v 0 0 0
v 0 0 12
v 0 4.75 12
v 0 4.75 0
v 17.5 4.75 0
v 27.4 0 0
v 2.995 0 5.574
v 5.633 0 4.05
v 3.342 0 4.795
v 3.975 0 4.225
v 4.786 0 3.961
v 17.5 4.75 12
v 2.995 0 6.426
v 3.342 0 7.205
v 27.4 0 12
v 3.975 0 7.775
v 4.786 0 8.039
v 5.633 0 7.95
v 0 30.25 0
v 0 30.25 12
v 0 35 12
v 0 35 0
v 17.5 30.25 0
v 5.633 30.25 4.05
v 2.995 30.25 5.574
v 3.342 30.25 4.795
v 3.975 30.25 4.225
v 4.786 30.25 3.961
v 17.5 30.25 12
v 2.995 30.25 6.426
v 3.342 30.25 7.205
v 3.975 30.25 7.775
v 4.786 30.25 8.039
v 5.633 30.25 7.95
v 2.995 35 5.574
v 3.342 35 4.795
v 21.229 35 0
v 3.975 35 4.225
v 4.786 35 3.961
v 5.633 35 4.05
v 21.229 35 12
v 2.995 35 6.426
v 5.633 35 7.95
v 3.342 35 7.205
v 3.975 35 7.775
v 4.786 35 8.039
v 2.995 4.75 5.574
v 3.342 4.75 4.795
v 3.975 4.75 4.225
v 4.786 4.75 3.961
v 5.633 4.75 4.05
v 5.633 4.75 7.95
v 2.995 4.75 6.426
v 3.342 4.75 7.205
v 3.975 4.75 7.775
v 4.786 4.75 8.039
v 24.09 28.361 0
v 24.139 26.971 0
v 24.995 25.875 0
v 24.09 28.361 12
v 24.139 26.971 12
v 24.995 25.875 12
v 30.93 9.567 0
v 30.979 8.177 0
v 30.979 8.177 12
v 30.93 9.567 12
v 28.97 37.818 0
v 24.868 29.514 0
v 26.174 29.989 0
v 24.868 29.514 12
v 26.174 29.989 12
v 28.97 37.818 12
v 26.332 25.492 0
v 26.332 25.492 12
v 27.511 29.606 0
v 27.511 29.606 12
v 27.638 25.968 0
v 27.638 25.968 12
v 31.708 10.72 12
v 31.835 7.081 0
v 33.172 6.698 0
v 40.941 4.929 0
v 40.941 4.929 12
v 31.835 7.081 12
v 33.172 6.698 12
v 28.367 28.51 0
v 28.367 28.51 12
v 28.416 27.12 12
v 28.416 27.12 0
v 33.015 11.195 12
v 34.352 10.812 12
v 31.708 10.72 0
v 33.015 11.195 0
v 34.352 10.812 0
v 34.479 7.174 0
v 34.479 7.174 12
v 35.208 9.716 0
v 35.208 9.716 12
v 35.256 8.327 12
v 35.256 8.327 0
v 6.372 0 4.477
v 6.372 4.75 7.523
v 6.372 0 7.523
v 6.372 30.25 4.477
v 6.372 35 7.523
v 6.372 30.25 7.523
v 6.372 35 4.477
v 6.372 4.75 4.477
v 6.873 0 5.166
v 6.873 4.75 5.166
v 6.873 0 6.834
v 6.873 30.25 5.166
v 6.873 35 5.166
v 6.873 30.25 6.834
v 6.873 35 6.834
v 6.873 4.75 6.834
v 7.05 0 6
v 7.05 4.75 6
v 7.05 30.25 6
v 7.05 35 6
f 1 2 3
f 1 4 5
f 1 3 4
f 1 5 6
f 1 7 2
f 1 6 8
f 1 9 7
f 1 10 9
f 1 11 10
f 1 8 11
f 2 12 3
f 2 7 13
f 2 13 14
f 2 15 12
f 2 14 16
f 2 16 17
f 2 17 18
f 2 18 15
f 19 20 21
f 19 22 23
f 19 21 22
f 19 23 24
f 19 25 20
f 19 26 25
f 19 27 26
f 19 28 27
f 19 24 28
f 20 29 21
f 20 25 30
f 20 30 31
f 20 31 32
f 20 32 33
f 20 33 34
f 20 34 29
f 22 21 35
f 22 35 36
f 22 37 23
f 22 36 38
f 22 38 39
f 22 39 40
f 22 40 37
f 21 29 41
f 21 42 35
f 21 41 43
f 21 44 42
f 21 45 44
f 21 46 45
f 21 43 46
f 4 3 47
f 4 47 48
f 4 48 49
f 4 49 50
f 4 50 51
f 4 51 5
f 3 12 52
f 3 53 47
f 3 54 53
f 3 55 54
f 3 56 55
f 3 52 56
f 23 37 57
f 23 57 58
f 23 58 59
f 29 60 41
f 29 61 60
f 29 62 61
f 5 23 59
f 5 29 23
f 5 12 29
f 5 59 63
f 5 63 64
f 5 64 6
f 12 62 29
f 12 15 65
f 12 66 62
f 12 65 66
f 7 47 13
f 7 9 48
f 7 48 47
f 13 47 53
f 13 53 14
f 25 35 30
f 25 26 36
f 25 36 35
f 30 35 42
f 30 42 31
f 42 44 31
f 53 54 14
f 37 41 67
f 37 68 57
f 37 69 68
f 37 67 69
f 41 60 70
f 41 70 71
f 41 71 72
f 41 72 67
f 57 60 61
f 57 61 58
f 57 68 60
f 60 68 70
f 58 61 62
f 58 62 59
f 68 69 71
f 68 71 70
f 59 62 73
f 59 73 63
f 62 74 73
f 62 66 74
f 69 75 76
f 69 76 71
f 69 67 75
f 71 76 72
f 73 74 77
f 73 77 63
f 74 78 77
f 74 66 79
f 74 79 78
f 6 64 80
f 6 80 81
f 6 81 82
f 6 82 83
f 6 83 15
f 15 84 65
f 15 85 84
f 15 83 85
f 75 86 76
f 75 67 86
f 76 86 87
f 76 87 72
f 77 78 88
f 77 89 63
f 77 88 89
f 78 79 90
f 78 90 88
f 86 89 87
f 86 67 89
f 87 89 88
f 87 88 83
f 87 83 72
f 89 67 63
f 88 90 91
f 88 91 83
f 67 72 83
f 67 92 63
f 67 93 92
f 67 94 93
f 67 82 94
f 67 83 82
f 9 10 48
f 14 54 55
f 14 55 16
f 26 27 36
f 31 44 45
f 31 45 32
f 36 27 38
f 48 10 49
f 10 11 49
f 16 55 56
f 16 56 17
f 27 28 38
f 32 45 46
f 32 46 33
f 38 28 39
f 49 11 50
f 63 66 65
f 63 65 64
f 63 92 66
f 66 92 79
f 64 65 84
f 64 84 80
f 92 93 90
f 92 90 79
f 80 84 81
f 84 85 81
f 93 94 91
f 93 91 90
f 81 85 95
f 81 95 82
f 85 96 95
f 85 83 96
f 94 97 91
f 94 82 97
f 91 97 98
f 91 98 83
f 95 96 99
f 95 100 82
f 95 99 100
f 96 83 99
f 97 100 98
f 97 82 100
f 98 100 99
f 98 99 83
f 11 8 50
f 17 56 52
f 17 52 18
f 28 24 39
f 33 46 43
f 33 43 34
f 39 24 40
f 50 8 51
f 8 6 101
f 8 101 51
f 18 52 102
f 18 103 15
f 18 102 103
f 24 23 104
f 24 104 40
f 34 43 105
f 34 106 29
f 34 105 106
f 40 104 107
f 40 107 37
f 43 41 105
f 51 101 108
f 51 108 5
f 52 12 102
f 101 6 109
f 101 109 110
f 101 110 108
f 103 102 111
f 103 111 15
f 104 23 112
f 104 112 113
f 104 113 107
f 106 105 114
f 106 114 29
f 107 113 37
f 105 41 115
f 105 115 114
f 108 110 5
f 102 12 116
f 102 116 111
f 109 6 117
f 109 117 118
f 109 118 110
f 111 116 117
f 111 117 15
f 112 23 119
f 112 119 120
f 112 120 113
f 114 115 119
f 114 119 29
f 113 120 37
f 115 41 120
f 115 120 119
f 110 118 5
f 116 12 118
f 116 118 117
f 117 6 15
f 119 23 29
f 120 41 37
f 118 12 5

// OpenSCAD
// file: ../Parameters.scad
//Main tube diameter - hole [mm]
main_tube_outer_diameter = 25.4;
main_tube_inner_diameter = 23.5;

//Tube for undercarriage - hole [mm]
tube_for_undercarriage_outer_diameter = 10.6;
tube_for_undercarriage_inner_diameter = 6;
global_clearance = 0.5;


//umístění podvozkových trubek

second_undercarriage_hole = main_tube_outer_diameter*2 + main_tube_outer_diameter/5 + main_tube_outer_diameter/2 + 170 + 160;

// Parameters of cube couplings
coupling_wall_thickness = main_tube_outer_diameter/5;  //width of coupling walls 
thickness_between_tubes = main_tube_outer_diameter/10;    // minimum distance between tubes in couplings

coupling_wall_thickness_undercarriage = tube_for_undercarriage_outer_diameter/3;
thickness_between_tubes_undercarriage = tube_for_undercarriage_outer_diameter/10;

//Screw diameter and nut for M4 [mm]
M4_screw_diameter=4.5;
Nut_height_M4 = 3.2;
Nut_diameter_M4 = 7.86;


//Screw diameter and nut for M3 [mm]
M3_screw_diameter = 3.2;
Nut_height_M3 = 1.7;	
Nut_diameter_M3 = 6.6; 


//The tube for help
Help_main_tube_outer = 25;
Help_main_tube_inner = 23; 
Help_tube_for_undercarriage_outer = 10;
Help_tube_for_undercarriage_inner = 5;


//main hull parameters

hull_drop_length = 580;
hull_wall_thickness = 0.8;
hull_y_size = 120;
hull_z_size = 150;
hull_x_size = 580;
hull_corner_radius = 4;
hull_airfoil_thickness= 35;  // thickness of drop generating airfoil in percent of lenght.
hull_scale_x = 1;
hull_scale_y = 1.5;
hull_scale_z = 1.5;

main_pilon_position = 170+68;
cover_pilon_position = 180;
height_of_vertical_tube = 275; //278mm je změřená délka trubky. 

ribbon_width = 5; // šířka vyztužovacích lemů. 

// šířka otvoru v přední části kapoty pro držák motoru.
width_of_engine_holder = 63;

//Top Cover Division - dělení horního krytu pro tisk
top_cover_division = [0, 50, 150, 280, 410, hull_x_size]; // upraveny seznam tak, aby deleni začinalo od nuly, což umožňí úplně automatické rozdělení.

//Bottom Cover Division - dělení dolního krytu pro tisk
bottom_cover_division = [0,100,250,365, 470, hull_x_size];
// zkrácená část pro payload pro testovací tisk
//bottom_cover_division = [0,200,250,365, 470, hull_x_size];

//Base Divison - dělení podložky
base_division = [0,140,280,410, hull_x_size];

//Cover pilon division - na výšku (v ose Z)
cover_pilon_division = [0,170,height_of_vertical_tube + main_tube_outer_diameter + coupling_wall_thickness];

//pozice šroubů
	//horní kryt
top_screw_position = [0, (top_cover_division[0] + top_cover_division[1])/4, (top_cover_division[2] - top_cover_division[1])/2 + top_cover_division[1], (top_cover_division[3] - top_cover_division[2])/2 + top_cover_division[2],(top_cover_division[4] - top_cover_division[3])/2 + top_cover_division[3],(top_cover_division[5] - top_cover_division[4])/2 + top_cover_division[4] - 20];
	//spodní kryt
bottom_screw_position = [(bottom_cover_division[0] + bottom_cover_division[1])/15 + 5, bottom_cover_division[1]/1.1 + bottom_cover_division[3], bottom_cover_division[3] + bottom_cover_division[1]/2, bottom_cover_division[4], bottom_cover_division[4] + bottom_cover_division[1]/2];




//šířka zámků
lock_width = 10;

//délka zámků
lock_length = 3;


//accumulator
//základní rozměry akumulátoru
width_of_accumulator = 129.4;//45+1;
depth_of_accumulator = 40.61;
height_of_accumulator = 43.65;
//Zapuštění akumulátoru
sink_of_accumulator = 5; //main_tube_outer_diameter/5 - Nut_height_M3*1.5;

//tloušťka hrany spojky
accumulator_holder_width = 18; 
accumulator_holder_thickness = 10; 

//posunutí akumálátoru na podložce
move_of_accumulator = 165;   // pozice akumulátoru (ovlivňuje těžiště)


////////////////
// Senzory
///////////////////

//opticalFlow
    width_optical_flow_senzor = 45.5;
    depth_optical_flow_senzor = 6;
    height_optical_flow_senzor = 35;
    sink_of_optical_flow_senzor = depth_optical_flow_senzor - 5; 
    M3_optical_flow_senzor_Z = 30.4;
    M3_optical_flow_senzor_X = 24;
    M3_optical_flow_senzor_Z_alone = 9.1;
    M3_optical_flow_senzor_X_alone = 16.7;
// file: lib/naca4.scad
// Naca4.scad - library for parametric airfoils of 4 digit NACA series
// Code: Rudolf Huttary, Berlin 
// June 2015
// commercial use prohibited


// general use: for more examples refer to sampler.scad
// naca = naca digits or 3el vector  (default = 12 or [0, 0, .12])
// L    = chord length [mm]      (default= 100)
// N    = # sample points        (default= 81)
// h    = height [mm]            (default= 1)
// open = close at the thin end? (default = true)
// two equivalent example calls
 airfoil(naca = 2408, L = 60, N=1001, h = 30, open = false); 
// airfoil(naca = [.2, .4, .32], L = 60, N=1001, h = 30, open = false); 

module help()
{
  echo(str("\n\nList of signatures in lib:\n=================\n", 
  "module airfoil(naca=2412, L = 100, N = 81, h = 1, open = false) - renders airfoil object\n", 
  "module airfoil(naca=[.2, .4, .12], L = 100, N = 81, h = 1, open = false) - renders airfoil object using percentage for camber,  camber distance and thicknes\n", 
  "function airfoil_data(naca=12, L = 100, N = 81, open = false)\n",
  "=================\n")); 
}

help(); 
// this is the object
module airfoil(naca=12, L = 100, N = 81, h = 1, open = false)
{
  linear_extrude(height = h)
  polygon(points = airfoil_data(naca, L, N, open)); 
}

module hollow_airfoil(lnaca=12, L = 100, N = 81, h = 1, open = false, wall_thickness = 1)
{
    if (open){
        linear_extrude(height = h)

        if (wall_thickness>0){
            difference(){
                polygon(points = airfoil_data(naca, L, N, false));
                offset(delta = - wall_thickness, chamfer = false) polygon(points = airfoil_data(naca, L, N, open = false));
            }
        }
        else{
            difference(){
                offset(delta = - wall_thickness, chamfer = false) polygon(points = airfoil_data(naca, L, N, open = false));
                polygon(points = airfoil_data(naca, L, N, false));
            }
        }
    }
    else{

        linear_extrude(height = abs(wall_thickness))
            polygon(points = airfoil_data(naca, L, N, false)); 

        linear_extrude(height = h)
            difference(){
                polygon(points = airfoil_data(naca, L, N, open));
                offset(delta = - wall_thickness) polygon(points = airfoil_data(naca, L, N, open = false));
            }

        translate([0,0, h - wall_thickness])
            linear_extrude(height = abs(wall_thickness))
                polygon(points = airfoil_data(naca, L, N, false)); 

    }
}


// this is the main function providing the airfoil data
function airfoil_data(naca=12, L = 100, N = 81, open = false) = 
  let(Na = len(naca)!=3?NACA(naca):naca)
  let(A = [.2969, -0.126, -.3516, .2843, open?-0.1015:-0.1036])
  [for (b=[-180:360/(N):179.99]) 
    let (x = (1-cos(b))/2)  
    let(yt = sign(b)*Na[2]/.2*(A*[sqrt(x), x, x*x, x*x*x, x*x*x*x])) 
    Na[0]==0?L*[x, yt]:L*camber(x, yt, Na[0], Na[1], sign(b))];  


function trailing_edge_angle(naca=12, open = false) = 
  let(Na = len(naca)!=3?NACA(naca):naca)
  let(A = [.2969, -0.126, -.3516, .2843, open?-0.1015:-0.1036])
  let (x =0.999)  // set x near to airfoil trailing edge
  let(yt = Na[2]/.2*(A*[sqrt(x), x, x*x, x*x*x, x*x*x*x])) // calculate distance from x-axis at previously set position
  atan2(yt,1-x);  // calculate angle of triangle between end of airfoil. The triange height corresponds to previously calculated distance from x-axis

function surface_angle(x = 0.5, naca=12, open = false) = 
  let(Na = len(naca)!=3?NACA(naca):naca)
  let(A = [0.2969, -0.126, -0.3516, 0.2843, open?-0.1015:-0.1036])
  let(dy = Na[2]/0.2*(A*[(1/2)*(1/sqrt(x)), 1, 2*x, 3*x*x, 4*x*x*x])) // calculate derivative of airfoil function at the x point
  atan(dy);  // calculate  the angle from function derivative

function surface_distance(x = 0.5, naca=12, open = false) = 
  let(Na = len(naca)!=3?NACA(naca):naca)
  let(A = [0.2969, -0.126, -0.3516, 0.2843, open?-0.1015:-0.1036])
  Na[2]/.2*(A*[sqrt(x), x, x*x, x*x*x, x*x*x*x]); // calculate distance from x-axis at previously set position

// helper functions
function NACA(naca) = 
  let (M = floor(naca/1000))
  let (P = floor((naca-M*1000)/100)) 
  [M/100, P/10, floor(naca-M*1000-P*100)/100];  

function camber(x, y, M, P, upper) = 
  let(yc = (x<P)?M/P/P*(2*P*x-x*x): M/(1-P)/(1-P)*(1 - 2*P + 2*P*x -x*x))
  let(dy = (x<P)?2*M/P/P*(P-x):2*M/(1-P)/(1-P)*(P-x))
  let(th = atan(dy))
  [upper ? x - y*sin(th):x + y*sin(th), upper ? yc + y*cos(th):yc - y*cos(th)];
// main file
module 666_1232(){

thickness = 12; 
	difference(){
        union(){
            cube([27.4,35,thickness]);
            translate([27.4,0,0])
                rotate([0,0,20])
                    cube([14.41,35,thickness]);
        }
        // díra pro domek
        translate([0,5-0.25,-1])
            cube([17.5,25.5,thickness + 2]);


        // díry pro čep
		translate([5,38,thickness/2])
            rotate([90,0,0])
                cylinder (h = 40, r = 4.1/2, $fn = 15);

        //díry pro přišroubování závěsu rotorového listu. 
        translate([27.4,0,0])
        rotate([0,0,20])
            union(){
                translate([14.41-6,6.46,-1]) 
                    cylinder (h = thickness + 2, r = M4_screw_diameter/2, $fn = 10);

                translate([14.41-6, 6.46+20,-1]) 
                    cylinder (h = thickness + 2, r = M4_screw_diameter/2, $fn = 10);
            }

	}
}
666_1232();

use <./lib/naca4.scad>
include <../Parameters.scad>
